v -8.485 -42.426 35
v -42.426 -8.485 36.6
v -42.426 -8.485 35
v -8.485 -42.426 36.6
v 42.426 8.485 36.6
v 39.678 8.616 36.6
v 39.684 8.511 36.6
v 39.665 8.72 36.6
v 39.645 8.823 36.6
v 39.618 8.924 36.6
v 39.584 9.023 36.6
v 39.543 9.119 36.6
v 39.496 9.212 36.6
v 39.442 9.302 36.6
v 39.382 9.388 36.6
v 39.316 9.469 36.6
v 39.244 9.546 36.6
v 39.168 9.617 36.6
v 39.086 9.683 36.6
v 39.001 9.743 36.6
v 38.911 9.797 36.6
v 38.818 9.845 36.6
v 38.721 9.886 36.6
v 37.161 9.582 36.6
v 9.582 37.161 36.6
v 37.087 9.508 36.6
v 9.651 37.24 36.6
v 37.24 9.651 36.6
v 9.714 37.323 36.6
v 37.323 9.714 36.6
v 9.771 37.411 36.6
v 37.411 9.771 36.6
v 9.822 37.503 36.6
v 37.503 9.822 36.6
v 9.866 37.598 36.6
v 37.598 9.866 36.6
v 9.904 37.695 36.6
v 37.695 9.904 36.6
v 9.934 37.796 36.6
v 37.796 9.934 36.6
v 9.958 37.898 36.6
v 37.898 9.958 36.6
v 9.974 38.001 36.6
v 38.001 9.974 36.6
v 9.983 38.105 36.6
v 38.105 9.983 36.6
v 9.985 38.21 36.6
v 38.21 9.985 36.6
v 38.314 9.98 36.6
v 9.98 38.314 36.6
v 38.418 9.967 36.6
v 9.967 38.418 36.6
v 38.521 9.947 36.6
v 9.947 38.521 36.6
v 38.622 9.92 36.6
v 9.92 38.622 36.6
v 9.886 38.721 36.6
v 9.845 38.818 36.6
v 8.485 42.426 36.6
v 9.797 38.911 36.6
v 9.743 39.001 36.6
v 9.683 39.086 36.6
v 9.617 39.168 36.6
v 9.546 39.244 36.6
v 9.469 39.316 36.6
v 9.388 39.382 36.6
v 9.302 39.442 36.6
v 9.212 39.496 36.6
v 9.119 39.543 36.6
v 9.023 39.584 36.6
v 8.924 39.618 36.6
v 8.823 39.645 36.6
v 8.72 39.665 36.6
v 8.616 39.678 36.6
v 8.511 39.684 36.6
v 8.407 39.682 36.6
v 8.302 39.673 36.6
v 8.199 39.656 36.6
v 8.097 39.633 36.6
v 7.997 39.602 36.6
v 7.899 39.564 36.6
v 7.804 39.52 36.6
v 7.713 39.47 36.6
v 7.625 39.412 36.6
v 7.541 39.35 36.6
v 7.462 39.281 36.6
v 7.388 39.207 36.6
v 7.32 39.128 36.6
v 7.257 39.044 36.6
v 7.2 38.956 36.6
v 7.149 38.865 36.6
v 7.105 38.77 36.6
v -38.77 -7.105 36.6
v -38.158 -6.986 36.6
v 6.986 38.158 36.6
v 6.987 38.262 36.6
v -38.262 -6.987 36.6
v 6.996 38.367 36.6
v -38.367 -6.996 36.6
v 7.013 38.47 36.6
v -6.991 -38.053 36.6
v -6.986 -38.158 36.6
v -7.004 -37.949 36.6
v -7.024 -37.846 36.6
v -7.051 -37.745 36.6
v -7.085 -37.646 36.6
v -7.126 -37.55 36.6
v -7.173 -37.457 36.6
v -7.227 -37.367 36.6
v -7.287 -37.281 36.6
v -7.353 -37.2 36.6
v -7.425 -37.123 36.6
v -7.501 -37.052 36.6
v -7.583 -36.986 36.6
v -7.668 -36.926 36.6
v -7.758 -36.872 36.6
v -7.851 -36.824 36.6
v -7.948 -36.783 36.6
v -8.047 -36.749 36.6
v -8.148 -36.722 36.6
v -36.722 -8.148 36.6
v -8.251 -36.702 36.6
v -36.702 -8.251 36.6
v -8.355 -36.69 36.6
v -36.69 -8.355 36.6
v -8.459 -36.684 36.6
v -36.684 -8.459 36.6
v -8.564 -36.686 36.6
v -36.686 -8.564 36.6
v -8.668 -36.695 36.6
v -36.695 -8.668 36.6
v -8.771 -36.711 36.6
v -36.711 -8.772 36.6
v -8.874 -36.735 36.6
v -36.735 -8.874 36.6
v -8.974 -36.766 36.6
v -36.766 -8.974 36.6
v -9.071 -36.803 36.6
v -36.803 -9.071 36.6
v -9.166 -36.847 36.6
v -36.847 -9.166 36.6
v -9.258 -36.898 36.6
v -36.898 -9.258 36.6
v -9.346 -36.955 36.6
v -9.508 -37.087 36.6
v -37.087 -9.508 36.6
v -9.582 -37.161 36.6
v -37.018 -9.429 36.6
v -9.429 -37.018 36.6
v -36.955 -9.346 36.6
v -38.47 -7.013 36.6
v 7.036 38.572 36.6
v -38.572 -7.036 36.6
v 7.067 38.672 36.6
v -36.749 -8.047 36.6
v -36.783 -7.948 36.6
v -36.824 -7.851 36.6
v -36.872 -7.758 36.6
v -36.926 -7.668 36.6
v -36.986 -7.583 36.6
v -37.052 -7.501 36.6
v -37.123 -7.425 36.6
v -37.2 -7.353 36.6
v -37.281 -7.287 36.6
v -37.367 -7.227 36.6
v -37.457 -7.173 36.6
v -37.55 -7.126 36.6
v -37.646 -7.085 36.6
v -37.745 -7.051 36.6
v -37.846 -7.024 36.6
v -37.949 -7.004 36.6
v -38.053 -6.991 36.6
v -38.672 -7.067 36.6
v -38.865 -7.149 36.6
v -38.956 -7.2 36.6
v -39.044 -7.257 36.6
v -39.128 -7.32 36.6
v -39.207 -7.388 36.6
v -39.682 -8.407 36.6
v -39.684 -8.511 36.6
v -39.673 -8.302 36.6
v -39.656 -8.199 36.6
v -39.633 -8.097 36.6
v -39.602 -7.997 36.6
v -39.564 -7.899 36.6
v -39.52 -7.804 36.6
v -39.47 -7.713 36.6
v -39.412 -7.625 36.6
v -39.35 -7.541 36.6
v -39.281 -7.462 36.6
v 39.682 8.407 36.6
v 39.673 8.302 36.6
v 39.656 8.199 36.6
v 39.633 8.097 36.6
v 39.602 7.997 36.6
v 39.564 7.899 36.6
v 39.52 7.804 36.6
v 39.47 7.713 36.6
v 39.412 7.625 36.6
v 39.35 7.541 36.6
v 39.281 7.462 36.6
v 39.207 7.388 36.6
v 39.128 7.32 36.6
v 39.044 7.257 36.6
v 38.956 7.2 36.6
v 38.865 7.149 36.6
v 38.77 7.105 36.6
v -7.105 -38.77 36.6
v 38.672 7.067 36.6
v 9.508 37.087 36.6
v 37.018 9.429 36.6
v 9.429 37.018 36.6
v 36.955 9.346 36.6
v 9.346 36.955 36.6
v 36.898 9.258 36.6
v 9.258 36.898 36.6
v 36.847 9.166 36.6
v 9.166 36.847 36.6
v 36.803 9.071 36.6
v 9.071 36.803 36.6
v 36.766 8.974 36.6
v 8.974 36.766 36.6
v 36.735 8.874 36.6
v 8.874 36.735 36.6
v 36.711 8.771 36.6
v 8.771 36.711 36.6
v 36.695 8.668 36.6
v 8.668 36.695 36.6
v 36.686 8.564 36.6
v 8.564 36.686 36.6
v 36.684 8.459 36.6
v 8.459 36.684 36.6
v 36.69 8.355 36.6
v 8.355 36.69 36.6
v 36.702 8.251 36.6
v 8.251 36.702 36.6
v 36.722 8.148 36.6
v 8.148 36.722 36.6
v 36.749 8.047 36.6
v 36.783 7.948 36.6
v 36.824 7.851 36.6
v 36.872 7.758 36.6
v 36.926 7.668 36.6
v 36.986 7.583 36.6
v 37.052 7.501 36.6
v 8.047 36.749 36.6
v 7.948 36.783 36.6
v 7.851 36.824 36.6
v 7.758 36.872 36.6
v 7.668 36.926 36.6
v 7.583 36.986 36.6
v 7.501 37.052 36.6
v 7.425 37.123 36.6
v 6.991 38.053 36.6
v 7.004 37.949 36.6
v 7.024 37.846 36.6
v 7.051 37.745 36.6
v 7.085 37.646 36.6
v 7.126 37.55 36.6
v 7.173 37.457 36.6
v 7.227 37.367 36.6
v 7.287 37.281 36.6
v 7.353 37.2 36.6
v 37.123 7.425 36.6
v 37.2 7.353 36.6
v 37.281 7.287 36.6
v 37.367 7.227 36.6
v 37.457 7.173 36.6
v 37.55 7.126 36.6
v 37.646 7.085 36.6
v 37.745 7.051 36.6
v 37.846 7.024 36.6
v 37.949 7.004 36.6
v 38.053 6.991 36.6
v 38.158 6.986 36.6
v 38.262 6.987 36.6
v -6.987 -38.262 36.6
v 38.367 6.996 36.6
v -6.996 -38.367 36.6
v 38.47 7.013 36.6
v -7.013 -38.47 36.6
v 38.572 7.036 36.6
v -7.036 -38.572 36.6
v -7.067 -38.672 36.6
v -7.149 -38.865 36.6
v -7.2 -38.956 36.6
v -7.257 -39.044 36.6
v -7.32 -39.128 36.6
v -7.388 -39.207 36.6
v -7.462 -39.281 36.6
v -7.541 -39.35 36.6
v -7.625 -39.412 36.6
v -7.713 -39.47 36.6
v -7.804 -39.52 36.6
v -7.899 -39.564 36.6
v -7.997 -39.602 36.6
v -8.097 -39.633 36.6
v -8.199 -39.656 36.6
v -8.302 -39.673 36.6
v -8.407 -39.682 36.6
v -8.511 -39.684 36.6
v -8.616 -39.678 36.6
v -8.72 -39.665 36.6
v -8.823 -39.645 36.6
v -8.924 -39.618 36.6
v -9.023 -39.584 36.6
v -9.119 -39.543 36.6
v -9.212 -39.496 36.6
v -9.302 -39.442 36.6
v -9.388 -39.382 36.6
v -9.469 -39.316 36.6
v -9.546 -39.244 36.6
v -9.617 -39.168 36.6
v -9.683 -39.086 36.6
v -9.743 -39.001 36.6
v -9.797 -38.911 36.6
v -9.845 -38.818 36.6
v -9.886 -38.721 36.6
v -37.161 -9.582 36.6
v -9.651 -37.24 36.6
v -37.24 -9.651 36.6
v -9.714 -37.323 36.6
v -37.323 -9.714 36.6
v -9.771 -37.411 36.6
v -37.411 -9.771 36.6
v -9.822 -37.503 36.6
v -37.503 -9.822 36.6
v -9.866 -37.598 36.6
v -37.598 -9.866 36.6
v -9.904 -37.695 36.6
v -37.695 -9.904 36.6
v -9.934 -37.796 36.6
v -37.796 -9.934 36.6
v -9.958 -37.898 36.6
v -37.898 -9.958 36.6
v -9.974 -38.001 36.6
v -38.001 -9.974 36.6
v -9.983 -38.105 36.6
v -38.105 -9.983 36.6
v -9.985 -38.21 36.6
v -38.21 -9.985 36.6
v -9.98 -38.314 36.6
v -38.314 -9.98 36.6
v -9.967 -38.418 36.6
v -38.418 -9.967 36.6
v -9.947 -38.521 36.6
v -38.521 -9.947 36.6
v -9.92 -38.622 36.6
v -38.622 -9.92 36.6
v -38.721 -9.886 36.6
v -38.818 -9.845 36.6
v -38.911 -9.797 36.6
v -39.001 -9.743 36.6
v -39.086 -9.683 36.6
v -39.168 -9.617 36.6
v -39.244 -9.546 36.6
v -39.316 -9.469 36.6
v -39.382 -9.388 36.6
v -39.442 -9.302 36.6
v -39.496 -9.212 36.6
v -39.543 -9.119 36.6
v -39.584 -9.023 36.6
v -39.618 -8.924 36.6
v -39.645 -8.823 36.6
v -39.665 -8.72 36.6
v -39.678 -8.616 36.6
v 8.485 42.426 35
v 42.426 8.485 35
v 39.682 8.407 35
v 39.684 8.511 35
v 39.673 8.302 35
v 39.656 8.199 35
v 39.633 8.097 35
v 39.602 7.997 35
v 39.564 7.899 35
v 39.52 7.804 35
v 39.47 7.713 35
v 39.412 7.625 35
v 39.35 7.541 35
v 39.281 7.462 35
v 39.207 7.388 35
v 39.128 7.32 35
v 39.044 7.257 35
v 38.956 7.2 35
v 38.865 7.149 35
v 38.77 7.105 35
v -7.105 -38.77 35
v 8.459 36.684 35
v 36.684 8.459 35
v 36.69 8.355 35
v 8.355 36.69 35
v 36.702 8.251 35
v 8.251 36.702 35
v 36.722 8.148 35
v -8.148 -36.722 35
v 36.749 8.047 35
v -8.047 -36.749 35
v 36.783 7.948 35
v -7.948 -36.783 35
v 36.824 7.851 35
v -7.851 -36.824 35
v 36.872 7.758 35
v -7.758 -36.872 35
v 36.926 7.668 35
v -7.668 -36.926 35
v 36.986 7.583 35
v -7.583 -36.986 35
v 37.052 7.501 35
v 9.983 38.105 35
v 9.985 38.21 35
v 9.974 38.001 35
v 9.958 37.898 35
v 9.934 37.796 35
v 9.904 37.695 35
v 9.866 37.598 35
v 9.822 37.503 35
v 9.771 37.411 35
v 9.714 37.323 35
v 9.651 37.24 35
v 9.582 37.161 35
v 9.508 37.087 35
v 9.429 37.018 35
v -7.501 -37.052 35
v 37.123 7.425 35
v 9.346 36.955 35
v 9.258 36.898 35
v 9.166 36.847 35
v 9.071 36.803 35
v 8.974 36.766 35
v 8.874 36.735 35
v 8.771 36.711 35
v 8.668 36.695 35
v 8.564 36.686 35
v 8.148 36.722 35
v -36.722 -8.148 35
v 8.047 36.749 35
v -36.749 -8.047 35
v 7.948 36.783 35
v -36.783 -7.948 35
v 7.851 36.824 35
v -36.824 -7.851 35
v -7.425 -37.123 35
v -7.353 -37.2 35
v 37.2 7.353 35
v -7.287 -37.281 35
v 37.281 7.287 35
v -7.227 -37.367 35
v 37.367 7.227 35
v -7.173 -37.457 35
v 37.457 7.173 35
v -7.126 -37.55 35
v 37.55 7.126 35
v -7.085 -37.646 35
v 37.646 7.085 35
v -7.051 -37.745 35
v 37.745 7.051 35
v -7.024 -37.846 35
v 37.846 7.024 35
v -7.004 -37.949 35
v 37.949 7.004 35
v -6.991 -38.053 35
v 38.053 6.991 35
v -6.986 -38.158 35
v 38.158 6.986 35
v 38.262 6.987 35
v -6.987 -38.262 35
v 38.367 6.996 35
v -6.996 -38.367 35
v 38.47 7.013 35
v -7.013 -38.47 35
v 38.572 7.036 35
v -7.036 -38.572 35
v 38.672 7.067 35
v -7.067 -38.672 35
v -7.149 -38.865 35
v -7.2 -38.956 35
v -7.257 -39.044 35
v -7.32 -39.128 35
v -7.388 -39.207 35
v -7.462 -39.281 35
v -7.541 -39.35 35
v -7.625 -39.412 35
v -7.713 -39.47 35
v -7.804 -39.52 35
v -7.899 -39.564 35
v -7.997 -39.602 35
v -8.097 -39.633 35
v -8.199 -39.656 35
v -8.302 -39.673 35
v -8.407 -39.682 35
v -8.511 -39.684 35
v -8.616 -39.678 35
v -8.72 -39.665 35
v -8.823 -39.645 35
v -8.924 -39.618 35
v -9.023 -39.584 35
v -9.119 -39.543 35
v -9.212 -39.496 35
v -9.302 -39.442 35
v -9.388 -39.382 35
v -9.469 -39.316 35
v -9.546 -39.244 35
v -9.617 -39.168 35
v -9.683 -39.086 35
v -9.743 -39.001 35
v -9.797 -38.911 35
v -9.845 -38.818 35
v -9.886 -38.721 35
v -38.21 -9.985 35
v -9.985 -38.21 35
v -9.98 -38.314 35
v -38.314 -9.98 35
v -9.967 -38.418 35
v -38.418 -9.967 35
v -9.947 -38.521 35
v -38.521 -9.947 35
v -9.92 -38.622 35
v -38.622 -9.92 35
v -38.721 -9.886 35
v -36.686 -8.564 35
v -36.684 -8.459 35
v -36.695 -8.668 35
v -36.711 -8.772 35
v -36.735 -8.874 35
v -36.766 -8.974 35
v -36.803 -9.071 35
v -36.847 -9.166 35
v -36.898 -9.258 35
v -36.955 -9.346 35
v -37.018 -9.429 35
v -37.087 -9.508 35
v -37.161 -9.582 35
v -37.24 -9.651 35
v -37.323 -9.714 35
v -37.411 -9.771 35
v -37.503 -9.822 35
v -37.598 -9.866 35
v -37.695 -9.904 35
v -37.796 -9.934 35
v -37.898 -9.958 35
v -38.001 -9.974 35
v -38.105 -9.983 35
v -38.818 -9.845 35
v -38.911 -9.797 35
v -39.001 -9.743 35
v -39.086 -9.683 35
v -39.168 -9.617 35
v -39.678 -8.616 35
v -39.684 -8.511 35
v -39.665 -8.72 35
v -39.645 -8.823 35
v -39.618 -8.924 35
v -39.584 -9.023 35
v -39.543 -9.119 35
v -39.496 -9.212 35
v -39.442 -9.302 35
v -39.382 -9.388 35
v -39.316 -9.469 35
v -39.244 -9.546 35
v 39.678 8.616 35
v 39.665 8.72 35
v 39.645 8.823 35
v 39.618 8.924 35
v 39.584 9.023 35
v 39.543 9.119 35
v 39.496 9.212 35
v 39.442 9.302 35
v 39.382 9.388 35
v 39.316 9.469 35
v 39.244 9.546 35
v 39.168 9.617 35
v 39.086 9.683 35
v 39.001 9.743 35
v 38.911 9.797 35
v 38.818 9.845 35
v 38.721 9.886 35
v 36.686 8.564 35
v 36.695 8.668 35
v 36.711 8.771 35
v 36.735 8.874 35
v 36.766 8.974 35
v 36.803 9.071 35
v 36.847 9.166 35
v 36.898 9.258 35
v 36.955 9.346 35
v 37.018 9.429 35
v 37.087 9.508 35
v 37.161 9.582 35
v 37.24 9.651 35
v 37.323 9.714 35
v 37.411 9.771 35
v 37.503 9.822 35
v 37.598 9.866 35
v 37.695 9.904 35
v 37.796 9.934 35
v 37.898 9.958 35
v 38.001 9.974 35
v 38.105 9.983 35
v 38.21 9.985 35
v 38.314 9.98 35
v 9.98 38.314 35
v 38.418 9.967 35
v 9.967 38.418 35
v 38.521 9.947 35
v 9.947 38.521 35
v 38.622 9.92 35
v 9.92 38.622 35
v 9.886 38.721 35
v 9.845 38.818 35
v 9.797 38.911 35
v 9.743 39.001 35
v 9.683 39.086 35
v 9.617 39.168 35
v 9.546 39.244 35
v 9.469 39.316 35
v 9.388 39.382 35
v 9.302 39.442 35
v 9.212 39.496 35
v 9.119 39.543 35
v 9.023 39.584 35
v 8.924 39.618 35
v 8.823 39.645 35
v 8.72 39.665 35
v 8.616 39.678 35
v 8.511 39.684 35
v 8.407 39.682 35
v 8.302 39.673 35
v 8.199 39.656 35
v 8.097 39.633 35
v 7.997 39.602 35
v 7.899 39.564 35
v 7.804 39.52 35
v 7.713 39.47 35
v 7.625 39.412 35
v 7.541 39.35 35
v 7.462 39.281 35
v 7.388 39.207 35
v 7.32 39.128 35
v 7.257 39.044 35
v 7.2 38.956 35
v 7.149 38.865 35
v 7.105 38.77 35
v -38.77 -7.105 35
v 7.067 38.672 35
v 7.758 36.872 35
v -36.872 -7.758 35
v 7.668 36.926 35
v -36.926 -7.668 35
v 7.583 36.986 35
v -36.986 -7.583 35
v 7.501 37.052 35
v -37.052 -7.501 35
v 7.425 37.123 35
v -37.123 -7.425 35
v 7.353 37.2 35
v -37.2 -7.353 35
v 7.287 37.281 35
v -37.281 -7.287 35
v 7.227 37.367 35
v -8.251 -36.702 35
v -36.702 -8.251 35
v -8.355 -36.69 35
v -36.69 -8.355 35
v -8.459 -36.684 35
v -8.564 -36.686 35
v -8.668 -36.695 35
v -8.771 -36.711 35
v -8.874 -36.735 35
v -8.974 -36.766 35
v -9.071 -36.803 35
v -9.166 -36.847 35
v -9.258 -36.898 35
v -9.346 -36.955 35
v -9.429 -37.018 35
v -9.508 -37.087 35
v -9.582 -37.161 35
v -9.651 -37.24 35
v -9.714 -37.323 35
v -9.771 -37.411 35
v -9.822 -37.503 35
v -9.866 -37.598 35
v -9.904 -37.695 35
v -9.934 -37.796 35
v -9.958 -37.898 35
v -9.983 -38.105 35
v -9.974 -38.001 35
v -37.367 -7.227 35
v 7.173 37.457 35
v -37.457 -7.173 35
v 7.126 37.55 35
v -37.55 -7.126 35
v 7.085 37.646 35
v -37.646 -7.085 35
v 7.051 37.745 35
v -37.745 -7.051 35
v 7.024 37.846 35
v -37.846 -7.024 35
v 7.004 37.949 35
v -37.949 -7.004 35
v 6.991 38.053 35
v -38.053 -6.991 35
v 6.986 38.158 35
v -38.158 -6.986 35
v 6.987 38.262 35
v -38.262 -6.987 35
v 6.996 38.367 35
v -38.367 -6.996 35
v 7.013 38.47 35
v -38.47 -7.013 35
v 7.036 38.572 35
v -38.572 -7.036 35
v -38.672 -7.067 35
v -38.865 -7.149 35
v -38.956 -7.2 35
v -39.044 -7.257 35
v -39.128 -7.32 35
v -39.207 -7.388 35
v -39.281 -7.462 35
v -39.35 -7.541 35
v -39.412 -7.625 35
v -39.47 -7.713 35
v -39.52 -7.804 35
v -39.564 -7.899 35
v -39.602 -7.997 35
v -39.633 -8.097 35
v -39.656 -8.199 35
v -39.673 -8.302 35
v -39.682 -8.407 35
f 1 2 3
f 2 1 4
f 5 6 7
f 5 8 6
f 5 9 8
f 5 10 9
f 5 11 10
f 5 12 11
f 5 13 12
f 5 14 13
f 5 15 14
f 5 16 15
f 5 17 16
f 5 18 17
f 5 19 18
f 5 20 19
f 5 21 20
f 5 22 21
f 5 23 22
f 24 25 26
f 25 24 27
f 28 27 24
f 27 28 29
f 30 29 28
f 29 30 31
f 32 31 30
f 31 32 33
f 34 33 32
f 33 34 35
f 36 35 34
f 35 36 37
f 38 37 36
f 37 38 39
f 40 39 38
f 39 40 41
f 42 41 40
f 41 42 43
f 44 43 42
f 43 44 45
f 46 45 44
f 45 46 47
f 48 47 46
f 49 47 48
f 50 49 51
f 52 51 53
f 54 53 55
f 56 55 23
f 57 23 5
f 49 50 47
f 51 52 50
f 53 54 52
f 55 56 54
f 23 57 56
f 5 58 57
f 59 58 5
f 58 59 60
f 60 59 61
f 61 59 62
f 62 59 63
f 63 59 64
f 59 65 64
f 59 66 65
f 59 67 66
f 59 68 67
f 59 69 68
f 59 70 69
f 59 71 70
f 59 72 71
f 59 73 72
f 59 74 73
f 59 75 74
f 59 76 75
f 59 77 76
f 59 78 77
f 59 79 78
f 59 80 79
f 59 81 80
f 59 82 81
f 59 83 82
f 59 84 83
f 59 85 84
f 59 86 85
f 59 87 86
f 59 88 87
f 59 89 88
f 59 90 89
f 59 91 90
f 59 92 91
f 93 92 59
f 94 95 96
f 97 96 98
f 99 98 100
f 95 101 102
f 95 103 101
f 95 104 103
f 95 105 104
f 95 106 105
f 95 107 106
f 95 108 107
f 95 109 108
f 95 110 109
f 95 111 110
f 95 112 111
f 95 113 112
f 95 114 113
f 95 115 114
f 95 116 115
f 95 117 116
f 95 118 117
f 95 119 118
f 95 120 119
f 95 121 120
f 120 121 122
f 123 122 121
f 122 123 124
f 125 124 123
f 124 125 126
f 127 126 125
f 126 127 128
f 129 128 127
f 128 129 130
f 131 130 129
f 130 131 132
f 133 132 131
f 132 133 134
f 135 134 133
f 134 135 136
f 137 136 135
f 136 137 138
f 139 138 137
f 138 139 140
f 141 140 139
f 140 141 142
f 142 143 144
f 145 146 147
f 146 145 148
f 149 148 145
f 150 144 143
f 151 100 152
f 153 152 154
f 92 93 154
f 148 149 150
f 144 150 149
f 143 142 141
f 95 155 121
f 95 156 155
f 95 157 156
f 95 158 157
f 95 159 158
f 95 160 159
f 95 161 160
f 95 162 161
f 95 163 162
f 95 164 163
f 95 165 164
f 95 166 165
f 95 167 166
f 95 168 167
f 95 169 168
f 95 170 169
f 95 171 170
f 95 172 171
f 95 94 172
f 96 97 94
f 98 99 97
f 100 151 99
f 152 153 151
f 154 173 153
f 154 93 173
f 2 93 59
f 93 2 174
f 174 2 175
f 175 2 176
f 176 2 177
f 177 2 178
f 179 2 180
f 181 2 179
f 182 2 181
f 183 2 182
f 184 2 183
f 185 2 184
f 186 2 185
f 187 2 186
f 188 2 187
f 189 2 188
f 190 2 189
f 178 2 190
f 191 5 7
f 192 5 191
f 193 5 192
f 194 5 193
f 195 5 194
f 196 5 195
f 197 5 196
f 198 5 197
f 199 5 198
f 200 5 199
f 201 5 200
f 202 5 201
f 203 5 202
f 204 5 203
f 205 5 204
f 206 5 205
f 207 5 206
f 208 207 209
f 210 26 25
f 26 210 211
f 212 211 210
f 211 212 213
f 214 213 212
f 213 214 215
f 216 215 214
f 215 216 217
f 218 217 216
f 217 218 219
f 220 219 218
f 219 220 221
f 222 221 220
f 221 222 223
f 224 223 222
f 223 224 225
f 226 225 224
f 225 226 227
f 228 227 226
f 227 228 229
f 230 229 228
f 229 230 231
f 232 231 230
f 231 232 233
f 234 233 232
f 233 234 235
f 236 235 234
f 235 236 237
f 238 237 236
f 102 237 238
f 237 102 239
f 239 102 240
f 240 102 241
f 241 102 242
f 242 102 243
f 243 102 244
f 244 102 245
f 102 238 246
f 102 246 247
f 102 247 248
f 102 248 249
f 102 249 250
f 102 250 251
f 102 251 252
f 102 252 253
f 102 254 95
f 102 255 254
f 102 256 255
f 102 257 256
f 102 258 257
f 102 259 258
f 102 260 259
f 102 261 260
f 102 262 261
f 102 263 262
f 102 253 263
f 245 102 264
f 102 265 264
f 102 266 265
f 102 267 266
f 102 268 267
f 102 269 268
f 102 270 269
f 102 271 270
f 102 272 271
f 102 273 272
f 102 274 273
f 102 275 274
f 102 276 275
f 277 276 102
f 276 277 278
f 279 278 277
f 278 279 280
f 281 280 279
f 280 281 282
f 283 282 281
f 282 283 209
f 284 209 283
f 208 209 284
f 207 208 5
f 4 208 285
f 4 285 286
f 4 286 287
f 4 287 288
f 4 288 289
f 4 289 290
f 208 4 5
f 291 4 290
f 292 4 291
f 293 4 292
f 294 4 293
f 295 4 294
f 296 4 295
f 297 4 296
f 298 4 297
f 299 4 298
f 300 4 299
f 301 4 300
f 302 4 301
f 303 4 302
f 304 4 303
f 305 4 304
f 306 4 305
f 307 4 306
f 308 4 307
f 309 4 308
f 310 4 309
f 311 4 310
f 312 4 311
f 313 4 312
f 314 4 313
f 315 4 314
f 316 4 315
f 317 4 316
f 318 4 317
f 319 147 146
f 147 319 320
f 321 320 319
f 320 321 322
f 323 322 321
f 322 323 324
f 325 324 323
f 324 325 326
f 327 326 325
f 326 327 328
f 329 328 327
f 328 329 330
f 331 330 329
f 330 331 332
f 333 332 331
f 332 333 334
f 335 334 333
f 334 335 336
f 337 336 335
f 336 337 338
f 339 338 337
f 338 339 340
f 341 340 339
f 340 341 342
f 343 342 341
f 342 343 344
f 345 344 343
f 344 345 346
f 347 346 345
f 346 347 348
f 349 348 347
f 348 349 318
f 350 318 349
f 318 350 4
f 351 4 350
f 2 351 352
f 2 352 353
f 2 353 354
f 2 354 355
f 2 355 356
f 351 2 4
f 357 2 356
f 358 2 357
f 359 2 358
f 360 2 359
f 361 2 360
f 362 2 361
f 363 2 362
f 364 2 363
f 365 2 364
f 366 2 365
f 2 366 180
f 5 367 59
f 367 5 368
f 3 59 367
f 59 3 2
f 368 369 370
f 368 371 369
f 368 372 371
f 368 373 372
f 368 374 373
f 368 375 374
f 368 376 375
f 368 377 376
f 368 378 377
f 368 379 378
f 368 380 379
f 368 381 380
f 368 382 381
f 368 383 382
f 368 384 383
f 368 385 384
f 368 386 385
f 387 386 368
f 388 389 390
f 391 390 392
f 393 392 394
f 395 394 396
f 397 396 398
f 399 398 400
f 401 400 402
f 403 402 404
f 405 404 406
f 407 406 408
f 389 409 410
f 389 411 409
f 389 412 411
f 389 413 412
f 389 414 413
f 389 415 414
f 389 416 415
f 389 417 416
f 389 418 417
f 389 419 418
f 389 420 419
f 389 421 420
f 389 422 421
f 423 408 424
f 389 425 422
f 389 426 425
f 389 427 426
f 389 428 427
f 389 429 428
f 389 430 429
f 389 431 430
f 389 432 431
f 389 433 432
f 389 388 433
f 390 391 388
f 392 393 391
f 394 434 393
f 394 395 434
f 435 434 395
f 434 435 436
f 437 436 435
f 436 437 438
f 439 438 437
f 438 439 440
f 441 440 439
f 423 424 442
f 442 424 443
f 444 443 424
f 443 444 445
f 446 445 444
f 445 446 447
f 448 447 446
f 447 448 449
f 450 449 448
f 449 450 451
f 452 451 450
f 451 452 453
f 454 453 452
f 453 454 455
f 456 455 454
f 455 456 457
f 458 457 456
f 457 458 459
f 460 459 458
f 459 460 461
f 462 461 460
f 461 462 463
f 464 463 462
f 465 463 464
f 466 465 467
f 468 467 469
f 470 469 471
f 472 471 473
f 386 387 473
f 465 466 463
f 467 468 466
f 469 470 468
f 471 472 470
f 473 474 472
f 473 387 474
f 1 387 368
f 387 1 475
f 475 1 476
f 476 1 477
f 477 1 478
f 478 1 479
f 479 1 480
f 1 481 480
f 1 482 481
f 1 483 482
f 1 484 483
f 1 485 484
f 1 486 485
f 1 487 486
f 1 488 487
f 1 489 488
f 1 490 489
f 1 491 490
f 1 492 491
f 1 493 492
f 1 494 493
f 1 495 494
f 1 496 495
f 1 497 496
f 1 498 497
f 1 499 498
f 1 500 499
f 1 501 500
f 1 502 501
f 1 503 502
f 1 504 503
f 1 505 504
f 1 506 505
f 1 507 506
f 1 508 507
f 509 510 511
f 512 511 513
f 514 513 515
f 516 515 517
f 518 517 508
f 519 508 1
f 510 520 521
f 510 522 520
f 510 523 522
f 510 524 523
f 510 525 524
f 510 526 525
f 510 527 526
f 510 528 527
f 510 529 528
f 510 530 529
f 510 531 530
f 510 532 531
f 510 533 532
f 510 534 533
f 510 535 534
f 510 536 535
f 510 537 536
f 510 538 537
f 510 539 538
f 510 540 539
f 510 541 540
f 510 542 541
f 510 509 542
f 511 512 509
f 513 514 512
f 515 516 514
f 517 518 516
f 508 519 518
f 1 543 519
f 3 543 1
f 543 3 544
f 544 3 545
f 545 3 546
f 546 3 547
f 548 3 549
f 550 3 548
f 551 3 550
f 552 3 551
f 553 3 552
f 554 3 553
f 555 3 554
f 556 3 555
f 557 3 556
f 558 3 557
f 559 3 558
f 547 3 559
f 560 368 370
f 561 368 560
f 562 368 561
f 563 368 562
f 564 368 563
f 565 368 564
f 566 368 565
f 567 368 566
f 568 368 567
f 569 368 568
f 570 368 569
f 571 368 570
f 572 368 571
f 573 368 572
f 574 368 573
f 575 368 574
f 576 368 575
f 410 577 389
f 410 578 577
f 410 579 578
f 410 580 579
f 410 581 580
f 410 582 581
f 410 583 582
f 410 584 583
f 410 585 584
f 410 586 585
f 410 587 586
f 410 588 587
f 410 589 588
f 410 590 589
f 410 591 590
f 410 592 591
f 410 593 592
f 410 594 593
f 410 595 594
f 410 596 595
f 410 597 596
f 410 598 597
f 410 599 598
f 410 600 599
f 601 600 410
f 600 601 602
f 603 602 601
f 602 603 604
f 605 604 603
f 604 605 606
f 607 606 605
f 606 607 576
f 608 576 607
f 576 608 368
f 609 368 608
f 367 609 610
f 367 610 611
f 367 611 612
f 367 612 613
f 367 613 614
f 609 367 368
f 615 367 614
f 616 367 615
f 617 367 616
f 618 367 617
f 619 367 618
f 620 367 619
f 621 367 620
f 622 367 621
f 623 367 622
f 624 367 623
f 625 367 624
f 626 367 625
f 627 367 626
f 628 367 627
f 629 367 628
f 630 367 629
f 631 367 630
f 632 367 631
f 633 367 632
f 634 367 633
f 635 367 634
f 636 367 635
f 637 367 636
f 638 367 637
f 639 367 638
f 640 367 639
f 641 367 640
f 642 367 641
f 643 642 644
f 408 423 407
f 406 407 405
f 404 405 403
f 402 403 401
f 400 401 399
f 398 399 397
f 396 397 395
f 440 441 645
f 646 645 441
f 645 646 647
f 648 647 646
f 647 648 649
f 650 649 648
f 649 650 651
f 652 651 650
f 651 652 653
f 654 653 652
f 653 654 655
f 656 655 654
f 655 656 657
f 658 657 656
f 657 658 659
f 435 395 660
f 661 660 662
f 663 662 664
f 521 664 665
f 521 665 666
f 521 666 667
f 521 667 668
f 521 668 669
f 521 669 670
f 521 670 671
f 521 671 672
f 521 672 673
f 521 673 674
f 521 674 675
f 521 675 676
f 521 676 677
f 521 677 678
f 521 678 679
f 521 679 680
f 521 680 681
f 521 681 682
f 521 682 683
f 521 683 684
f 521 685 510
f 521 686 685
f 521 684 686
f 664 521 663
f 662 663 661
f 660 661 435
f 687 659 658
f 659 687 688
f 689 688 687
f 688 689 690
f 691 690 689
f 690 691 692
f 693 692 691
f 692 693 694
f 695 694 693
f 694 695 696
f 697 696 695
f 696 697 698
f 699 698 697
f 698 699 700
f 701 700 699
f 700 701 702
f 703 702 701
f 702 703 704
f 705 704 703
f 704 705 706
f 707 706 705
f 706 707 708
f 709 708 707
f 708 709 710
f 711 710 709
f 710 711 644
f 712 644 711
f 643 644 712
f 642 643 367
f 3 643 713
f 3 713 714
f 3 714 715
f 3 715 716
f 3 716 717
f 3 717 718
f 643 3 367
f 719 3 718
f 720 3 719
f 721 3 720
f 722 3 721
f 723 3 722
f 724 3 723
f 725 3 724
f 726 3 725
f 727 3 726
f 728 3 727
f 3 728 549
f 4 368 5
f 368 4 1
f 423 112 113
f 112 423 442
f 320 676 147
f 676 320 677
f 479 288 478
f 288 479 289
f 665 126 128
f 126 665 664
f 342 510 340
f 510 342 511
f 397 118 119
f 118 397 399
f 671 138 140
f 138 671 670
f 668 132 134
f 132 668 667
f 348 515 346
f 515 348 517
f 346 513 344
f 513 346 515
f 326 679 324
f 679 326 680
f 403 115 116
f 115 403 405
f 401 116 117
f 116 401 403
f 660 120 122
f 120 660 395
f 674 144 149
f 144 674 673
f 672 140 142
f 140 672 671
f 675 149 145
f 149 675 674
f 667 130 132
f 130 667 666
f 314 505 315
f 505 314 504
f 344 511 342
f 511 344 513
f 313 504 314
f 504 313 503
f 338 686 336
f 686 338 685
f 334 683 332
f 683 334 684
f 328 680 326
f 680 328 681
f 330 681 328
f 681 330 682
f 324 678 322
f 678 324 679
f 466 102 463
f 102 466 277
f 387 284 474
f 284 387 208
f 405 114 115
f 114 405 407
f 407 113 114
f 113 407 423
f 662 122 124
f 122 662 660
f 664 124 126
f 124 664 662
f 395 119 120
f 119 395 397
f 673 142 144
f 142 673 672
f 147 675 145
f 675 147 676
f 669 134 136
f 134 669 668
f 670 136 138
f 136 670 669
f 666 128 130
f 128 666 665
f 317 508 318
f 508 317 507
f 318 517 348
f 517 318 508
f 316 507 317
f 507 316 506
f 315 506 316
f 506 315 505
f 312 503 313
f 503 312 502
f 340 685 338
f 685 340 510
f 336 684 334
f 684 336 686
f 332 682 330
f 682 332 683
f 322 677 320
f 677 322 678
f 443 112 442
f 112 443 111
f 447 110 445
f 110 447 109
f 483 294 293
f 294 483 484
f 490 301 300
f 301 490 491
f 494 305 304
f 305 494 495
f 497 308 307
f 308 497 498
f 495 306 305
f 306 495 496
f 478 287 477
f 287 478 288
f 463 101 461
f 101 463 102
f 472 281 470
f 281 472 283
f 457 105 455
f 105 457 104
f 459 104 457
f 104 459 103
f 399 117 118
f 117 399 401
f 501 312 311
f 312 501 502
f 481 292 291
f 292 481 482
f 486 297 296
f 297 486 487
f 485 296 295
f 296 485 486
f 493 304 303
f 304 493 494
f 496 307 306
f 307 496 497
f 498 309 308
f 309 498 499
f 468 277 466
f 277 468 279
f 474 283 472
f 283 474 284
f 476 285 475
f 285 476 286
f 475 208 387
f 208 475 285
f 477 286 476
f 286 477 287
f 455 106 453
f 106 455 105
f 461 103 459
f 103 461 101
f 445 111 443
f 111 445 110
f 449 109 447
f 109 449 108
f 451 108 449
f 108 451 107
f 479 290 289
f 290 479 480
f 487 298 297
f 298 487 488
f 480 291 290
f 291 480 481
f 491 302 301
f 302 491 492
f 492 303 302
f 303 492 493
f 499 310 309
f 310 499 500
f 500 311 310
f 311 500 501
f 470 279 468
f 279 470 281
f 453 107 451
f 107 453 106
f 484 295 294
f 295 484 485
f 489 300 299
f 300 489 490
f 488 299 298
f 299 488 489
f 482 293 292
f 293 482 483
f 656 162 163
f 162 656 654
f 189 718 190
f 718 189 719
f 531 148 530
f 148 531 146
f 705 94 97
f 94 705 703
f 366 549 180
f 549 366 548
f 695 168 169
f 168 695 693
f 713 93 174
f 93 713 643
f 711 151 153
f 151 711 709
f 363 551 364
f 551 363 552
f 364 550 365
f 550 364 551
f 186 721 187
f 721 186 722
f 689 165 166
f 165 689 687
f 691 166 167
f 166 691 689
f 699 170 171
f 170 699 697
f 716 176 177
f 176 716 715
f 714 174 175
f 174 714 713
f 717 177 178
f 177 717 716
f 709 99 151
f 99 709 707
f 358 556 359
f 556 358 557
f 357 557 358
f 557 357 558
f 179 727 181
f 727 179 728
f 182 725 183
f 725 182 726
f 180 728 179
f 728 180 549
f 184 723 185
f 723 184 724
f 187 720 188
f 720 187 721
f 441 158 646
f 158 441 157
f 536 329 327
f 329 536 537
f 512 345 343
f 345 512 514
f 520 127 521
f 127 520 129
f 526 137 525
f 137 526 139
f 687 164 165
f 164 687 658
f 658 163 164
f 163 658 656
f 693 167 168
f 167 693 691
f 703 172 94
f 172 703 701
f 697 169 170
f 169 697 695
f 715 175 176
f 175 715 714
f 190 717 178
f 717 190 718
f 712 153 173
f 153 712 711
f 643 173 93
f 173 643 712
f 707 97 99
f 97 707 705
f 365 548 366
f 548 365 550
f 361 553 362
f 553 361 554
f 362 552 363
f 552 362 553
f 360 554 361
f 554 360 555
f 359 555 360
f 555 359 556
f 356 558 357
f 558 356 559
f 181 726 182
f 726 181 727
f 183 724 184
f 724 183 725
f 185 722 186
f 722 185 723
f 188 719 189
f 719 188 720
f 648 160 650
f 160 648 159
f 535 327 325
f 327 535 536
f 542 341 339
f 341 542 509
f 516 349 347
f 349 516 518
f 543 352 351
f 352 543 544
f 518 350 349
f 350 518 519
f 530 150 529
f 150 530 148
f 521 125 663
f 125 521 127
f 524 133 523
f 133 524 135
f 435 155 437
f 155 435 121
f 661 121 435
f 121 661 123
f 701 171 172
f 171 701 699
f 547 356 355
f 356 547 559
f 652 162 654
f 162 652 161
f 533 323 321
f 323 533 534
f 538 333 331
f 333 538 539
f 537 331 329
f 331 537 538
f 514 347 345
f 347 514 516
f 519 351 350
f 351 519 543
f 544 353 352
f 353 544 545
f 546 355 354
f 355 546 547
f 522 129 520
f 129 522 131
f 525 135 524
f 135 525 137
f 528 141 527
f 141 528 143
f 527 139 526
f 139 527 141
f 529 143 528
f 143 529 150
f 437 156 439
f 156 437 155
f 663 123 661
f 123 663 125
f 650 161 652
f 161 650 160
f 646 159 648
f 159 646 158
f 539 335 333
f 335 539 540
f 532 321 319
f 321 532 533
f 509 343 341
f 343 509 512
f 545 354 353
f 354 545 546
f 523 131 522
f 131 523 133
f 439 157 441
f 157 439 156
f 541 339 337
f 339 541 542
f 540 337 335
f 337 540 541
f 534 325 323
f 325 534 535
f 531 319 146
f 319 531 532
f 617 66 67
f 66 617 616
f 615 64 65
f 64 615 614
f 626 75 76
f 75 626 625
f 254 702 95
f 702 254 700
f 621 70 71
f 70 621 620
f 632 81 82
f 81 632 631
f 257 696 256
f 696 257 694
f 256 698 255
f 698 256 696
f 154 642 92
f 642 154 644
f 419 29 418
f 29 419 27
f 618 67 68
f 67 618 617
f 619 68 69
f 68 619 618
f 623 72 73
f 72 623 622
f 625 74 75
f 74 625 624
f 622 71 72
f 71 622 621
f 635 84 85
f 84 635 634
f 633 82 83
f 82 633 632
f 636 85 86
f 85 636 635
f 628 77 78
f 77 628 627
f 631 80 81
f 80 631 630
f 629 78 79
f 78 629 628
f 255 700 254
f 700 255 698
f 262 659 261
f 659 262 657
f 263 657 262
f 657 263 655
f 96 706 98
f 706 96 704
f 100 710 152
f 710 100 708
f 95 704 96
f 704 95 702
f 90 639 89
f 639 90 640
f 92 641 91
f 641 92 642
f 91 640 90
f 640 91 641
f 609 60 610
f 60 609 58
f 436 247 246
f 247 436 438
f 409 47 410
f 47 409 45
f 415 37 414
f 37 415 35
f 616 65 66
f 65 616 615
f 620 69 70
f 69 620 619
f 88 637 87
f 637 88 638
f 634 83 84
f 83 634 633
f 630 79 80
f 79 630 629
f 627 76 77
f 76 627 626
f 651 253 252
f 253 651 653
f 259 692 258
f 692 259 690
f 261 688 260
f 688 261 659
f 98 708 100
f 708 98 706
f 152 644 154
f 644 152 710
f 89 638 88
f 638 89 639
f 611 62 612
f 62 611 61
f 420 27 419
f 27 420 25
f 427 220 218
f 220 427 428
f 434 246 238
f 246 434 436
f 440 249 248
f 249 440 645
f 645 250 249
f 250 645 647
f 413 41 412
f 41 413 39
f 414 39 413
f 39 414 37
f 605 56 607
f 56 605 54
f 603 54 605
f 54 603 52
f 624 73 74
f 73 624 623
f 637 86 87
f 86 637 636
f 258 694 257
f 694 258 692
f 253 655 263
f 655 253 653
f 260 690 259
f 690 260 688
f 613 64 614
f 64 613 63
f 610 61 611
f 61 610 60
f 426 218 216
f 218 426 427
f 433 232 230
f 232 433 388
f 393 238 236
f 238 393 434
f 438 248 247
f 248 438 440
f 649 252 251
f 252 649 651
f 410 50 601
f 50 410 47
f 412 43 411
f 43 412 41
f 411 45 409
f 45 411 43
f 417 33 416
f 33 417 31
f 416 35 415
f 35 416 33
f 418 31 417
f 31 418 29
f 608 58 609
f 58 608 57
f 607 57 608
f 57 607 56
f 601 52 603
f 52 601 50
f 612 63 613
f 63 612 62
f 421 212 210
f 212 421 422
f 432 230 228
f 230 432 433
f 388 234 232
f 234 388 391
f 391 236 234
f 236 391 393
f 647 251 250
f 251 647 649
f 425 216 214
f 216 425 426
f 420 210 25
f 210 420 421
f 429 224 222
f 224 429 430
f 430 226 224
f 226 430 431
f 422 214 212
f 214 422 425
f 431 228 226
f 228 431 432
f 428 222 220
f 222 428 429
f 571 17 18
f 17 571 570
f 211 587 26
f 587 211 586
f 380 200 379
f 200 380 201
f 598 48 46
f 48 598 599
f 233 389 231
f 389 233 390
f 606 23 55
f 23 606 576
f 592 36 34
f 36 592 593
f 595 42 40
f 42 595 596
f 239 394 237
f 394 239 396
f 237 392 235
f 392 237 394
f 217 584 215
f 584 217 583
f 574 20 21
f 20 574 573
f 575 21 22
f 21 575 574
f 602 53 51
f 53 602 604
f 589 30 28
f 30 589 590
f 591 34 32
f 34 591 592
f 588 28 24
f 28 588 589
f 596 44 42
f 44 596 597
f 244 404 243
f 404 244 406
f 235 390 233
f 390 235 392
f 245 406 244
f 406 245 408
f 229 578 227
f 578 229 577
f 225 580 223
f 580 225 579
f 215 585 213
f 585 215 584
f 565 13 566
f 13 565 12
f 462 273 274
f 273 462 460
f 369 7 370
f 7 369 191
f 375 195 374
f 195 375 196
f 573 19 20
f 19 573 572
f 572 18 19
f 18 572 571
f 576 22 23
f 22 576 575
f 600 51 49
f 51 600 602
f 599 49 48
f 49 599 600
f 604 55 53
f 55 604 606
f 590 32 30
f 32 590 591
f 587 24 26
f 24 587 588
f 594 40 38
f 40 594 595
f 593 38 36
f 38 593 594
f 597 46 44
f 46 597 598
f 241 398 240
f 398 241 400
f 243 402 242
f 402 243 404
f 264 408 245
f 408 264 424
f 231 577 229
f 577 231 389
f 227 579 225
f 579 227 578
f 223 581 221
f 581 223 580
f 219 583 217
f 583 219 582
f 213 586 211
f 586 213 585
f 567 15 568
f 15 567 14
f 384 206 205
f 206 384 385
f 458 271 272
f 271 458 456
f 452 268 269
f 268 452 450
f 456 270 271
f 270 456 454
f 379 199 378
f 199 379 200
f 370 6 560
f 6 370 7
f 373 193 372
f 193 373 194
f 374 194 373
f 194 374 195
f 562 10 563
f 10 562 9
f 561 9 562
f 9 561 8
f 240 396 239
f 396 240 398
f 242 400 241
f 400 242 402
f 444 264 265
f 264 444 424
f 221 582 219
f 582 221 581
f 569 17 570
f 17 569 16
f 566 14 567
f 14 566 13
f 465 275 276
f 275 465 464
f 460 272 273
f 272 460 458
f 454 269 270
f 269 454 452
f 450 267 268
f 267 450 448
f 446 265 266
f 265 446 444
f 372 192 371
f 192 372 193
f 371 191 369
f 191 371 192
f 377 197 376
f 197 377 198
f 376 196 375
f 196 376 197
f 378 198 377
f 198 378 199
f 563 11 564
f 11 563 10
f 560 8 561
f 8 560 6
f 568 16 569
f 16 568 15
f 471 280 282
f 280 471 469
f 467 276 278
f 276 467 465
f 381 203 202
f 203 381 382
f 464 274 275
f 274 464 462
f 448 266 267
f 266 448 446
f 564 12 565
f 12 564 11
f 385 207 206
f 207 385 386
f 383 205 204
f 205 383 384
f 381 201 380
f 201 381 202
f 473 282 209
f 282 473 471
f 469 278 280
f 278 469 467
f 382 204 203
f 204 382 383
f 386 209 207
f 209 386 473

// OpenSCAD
$fn = 90;


//kiban
module kiban(){
   difference () {   
    cube ([72,48,1.6]);
      translate ([3,3,0]){
          cylinder (r1 = 1.5, r2 = 1.5, h= 1.6); 
        }
        translate ([3,3+42,0]){
          cylinder (r1 = 1.5, r2 = 1.5, h= 1.6); 
        }
        translate ([3+66,3+42,0]){
          cylinder (r1 = 1.5, r2 = 1.5, h= 1.6); 
        }
        translate ([3+66,3,0]){
          cylinder (r1 = 1.5, r2 = 1.5, h= 1.6); 
        }
   }   
 }
rotate ([0,0,45]) translate ([-72/2,-48/2,35]) kiban();
